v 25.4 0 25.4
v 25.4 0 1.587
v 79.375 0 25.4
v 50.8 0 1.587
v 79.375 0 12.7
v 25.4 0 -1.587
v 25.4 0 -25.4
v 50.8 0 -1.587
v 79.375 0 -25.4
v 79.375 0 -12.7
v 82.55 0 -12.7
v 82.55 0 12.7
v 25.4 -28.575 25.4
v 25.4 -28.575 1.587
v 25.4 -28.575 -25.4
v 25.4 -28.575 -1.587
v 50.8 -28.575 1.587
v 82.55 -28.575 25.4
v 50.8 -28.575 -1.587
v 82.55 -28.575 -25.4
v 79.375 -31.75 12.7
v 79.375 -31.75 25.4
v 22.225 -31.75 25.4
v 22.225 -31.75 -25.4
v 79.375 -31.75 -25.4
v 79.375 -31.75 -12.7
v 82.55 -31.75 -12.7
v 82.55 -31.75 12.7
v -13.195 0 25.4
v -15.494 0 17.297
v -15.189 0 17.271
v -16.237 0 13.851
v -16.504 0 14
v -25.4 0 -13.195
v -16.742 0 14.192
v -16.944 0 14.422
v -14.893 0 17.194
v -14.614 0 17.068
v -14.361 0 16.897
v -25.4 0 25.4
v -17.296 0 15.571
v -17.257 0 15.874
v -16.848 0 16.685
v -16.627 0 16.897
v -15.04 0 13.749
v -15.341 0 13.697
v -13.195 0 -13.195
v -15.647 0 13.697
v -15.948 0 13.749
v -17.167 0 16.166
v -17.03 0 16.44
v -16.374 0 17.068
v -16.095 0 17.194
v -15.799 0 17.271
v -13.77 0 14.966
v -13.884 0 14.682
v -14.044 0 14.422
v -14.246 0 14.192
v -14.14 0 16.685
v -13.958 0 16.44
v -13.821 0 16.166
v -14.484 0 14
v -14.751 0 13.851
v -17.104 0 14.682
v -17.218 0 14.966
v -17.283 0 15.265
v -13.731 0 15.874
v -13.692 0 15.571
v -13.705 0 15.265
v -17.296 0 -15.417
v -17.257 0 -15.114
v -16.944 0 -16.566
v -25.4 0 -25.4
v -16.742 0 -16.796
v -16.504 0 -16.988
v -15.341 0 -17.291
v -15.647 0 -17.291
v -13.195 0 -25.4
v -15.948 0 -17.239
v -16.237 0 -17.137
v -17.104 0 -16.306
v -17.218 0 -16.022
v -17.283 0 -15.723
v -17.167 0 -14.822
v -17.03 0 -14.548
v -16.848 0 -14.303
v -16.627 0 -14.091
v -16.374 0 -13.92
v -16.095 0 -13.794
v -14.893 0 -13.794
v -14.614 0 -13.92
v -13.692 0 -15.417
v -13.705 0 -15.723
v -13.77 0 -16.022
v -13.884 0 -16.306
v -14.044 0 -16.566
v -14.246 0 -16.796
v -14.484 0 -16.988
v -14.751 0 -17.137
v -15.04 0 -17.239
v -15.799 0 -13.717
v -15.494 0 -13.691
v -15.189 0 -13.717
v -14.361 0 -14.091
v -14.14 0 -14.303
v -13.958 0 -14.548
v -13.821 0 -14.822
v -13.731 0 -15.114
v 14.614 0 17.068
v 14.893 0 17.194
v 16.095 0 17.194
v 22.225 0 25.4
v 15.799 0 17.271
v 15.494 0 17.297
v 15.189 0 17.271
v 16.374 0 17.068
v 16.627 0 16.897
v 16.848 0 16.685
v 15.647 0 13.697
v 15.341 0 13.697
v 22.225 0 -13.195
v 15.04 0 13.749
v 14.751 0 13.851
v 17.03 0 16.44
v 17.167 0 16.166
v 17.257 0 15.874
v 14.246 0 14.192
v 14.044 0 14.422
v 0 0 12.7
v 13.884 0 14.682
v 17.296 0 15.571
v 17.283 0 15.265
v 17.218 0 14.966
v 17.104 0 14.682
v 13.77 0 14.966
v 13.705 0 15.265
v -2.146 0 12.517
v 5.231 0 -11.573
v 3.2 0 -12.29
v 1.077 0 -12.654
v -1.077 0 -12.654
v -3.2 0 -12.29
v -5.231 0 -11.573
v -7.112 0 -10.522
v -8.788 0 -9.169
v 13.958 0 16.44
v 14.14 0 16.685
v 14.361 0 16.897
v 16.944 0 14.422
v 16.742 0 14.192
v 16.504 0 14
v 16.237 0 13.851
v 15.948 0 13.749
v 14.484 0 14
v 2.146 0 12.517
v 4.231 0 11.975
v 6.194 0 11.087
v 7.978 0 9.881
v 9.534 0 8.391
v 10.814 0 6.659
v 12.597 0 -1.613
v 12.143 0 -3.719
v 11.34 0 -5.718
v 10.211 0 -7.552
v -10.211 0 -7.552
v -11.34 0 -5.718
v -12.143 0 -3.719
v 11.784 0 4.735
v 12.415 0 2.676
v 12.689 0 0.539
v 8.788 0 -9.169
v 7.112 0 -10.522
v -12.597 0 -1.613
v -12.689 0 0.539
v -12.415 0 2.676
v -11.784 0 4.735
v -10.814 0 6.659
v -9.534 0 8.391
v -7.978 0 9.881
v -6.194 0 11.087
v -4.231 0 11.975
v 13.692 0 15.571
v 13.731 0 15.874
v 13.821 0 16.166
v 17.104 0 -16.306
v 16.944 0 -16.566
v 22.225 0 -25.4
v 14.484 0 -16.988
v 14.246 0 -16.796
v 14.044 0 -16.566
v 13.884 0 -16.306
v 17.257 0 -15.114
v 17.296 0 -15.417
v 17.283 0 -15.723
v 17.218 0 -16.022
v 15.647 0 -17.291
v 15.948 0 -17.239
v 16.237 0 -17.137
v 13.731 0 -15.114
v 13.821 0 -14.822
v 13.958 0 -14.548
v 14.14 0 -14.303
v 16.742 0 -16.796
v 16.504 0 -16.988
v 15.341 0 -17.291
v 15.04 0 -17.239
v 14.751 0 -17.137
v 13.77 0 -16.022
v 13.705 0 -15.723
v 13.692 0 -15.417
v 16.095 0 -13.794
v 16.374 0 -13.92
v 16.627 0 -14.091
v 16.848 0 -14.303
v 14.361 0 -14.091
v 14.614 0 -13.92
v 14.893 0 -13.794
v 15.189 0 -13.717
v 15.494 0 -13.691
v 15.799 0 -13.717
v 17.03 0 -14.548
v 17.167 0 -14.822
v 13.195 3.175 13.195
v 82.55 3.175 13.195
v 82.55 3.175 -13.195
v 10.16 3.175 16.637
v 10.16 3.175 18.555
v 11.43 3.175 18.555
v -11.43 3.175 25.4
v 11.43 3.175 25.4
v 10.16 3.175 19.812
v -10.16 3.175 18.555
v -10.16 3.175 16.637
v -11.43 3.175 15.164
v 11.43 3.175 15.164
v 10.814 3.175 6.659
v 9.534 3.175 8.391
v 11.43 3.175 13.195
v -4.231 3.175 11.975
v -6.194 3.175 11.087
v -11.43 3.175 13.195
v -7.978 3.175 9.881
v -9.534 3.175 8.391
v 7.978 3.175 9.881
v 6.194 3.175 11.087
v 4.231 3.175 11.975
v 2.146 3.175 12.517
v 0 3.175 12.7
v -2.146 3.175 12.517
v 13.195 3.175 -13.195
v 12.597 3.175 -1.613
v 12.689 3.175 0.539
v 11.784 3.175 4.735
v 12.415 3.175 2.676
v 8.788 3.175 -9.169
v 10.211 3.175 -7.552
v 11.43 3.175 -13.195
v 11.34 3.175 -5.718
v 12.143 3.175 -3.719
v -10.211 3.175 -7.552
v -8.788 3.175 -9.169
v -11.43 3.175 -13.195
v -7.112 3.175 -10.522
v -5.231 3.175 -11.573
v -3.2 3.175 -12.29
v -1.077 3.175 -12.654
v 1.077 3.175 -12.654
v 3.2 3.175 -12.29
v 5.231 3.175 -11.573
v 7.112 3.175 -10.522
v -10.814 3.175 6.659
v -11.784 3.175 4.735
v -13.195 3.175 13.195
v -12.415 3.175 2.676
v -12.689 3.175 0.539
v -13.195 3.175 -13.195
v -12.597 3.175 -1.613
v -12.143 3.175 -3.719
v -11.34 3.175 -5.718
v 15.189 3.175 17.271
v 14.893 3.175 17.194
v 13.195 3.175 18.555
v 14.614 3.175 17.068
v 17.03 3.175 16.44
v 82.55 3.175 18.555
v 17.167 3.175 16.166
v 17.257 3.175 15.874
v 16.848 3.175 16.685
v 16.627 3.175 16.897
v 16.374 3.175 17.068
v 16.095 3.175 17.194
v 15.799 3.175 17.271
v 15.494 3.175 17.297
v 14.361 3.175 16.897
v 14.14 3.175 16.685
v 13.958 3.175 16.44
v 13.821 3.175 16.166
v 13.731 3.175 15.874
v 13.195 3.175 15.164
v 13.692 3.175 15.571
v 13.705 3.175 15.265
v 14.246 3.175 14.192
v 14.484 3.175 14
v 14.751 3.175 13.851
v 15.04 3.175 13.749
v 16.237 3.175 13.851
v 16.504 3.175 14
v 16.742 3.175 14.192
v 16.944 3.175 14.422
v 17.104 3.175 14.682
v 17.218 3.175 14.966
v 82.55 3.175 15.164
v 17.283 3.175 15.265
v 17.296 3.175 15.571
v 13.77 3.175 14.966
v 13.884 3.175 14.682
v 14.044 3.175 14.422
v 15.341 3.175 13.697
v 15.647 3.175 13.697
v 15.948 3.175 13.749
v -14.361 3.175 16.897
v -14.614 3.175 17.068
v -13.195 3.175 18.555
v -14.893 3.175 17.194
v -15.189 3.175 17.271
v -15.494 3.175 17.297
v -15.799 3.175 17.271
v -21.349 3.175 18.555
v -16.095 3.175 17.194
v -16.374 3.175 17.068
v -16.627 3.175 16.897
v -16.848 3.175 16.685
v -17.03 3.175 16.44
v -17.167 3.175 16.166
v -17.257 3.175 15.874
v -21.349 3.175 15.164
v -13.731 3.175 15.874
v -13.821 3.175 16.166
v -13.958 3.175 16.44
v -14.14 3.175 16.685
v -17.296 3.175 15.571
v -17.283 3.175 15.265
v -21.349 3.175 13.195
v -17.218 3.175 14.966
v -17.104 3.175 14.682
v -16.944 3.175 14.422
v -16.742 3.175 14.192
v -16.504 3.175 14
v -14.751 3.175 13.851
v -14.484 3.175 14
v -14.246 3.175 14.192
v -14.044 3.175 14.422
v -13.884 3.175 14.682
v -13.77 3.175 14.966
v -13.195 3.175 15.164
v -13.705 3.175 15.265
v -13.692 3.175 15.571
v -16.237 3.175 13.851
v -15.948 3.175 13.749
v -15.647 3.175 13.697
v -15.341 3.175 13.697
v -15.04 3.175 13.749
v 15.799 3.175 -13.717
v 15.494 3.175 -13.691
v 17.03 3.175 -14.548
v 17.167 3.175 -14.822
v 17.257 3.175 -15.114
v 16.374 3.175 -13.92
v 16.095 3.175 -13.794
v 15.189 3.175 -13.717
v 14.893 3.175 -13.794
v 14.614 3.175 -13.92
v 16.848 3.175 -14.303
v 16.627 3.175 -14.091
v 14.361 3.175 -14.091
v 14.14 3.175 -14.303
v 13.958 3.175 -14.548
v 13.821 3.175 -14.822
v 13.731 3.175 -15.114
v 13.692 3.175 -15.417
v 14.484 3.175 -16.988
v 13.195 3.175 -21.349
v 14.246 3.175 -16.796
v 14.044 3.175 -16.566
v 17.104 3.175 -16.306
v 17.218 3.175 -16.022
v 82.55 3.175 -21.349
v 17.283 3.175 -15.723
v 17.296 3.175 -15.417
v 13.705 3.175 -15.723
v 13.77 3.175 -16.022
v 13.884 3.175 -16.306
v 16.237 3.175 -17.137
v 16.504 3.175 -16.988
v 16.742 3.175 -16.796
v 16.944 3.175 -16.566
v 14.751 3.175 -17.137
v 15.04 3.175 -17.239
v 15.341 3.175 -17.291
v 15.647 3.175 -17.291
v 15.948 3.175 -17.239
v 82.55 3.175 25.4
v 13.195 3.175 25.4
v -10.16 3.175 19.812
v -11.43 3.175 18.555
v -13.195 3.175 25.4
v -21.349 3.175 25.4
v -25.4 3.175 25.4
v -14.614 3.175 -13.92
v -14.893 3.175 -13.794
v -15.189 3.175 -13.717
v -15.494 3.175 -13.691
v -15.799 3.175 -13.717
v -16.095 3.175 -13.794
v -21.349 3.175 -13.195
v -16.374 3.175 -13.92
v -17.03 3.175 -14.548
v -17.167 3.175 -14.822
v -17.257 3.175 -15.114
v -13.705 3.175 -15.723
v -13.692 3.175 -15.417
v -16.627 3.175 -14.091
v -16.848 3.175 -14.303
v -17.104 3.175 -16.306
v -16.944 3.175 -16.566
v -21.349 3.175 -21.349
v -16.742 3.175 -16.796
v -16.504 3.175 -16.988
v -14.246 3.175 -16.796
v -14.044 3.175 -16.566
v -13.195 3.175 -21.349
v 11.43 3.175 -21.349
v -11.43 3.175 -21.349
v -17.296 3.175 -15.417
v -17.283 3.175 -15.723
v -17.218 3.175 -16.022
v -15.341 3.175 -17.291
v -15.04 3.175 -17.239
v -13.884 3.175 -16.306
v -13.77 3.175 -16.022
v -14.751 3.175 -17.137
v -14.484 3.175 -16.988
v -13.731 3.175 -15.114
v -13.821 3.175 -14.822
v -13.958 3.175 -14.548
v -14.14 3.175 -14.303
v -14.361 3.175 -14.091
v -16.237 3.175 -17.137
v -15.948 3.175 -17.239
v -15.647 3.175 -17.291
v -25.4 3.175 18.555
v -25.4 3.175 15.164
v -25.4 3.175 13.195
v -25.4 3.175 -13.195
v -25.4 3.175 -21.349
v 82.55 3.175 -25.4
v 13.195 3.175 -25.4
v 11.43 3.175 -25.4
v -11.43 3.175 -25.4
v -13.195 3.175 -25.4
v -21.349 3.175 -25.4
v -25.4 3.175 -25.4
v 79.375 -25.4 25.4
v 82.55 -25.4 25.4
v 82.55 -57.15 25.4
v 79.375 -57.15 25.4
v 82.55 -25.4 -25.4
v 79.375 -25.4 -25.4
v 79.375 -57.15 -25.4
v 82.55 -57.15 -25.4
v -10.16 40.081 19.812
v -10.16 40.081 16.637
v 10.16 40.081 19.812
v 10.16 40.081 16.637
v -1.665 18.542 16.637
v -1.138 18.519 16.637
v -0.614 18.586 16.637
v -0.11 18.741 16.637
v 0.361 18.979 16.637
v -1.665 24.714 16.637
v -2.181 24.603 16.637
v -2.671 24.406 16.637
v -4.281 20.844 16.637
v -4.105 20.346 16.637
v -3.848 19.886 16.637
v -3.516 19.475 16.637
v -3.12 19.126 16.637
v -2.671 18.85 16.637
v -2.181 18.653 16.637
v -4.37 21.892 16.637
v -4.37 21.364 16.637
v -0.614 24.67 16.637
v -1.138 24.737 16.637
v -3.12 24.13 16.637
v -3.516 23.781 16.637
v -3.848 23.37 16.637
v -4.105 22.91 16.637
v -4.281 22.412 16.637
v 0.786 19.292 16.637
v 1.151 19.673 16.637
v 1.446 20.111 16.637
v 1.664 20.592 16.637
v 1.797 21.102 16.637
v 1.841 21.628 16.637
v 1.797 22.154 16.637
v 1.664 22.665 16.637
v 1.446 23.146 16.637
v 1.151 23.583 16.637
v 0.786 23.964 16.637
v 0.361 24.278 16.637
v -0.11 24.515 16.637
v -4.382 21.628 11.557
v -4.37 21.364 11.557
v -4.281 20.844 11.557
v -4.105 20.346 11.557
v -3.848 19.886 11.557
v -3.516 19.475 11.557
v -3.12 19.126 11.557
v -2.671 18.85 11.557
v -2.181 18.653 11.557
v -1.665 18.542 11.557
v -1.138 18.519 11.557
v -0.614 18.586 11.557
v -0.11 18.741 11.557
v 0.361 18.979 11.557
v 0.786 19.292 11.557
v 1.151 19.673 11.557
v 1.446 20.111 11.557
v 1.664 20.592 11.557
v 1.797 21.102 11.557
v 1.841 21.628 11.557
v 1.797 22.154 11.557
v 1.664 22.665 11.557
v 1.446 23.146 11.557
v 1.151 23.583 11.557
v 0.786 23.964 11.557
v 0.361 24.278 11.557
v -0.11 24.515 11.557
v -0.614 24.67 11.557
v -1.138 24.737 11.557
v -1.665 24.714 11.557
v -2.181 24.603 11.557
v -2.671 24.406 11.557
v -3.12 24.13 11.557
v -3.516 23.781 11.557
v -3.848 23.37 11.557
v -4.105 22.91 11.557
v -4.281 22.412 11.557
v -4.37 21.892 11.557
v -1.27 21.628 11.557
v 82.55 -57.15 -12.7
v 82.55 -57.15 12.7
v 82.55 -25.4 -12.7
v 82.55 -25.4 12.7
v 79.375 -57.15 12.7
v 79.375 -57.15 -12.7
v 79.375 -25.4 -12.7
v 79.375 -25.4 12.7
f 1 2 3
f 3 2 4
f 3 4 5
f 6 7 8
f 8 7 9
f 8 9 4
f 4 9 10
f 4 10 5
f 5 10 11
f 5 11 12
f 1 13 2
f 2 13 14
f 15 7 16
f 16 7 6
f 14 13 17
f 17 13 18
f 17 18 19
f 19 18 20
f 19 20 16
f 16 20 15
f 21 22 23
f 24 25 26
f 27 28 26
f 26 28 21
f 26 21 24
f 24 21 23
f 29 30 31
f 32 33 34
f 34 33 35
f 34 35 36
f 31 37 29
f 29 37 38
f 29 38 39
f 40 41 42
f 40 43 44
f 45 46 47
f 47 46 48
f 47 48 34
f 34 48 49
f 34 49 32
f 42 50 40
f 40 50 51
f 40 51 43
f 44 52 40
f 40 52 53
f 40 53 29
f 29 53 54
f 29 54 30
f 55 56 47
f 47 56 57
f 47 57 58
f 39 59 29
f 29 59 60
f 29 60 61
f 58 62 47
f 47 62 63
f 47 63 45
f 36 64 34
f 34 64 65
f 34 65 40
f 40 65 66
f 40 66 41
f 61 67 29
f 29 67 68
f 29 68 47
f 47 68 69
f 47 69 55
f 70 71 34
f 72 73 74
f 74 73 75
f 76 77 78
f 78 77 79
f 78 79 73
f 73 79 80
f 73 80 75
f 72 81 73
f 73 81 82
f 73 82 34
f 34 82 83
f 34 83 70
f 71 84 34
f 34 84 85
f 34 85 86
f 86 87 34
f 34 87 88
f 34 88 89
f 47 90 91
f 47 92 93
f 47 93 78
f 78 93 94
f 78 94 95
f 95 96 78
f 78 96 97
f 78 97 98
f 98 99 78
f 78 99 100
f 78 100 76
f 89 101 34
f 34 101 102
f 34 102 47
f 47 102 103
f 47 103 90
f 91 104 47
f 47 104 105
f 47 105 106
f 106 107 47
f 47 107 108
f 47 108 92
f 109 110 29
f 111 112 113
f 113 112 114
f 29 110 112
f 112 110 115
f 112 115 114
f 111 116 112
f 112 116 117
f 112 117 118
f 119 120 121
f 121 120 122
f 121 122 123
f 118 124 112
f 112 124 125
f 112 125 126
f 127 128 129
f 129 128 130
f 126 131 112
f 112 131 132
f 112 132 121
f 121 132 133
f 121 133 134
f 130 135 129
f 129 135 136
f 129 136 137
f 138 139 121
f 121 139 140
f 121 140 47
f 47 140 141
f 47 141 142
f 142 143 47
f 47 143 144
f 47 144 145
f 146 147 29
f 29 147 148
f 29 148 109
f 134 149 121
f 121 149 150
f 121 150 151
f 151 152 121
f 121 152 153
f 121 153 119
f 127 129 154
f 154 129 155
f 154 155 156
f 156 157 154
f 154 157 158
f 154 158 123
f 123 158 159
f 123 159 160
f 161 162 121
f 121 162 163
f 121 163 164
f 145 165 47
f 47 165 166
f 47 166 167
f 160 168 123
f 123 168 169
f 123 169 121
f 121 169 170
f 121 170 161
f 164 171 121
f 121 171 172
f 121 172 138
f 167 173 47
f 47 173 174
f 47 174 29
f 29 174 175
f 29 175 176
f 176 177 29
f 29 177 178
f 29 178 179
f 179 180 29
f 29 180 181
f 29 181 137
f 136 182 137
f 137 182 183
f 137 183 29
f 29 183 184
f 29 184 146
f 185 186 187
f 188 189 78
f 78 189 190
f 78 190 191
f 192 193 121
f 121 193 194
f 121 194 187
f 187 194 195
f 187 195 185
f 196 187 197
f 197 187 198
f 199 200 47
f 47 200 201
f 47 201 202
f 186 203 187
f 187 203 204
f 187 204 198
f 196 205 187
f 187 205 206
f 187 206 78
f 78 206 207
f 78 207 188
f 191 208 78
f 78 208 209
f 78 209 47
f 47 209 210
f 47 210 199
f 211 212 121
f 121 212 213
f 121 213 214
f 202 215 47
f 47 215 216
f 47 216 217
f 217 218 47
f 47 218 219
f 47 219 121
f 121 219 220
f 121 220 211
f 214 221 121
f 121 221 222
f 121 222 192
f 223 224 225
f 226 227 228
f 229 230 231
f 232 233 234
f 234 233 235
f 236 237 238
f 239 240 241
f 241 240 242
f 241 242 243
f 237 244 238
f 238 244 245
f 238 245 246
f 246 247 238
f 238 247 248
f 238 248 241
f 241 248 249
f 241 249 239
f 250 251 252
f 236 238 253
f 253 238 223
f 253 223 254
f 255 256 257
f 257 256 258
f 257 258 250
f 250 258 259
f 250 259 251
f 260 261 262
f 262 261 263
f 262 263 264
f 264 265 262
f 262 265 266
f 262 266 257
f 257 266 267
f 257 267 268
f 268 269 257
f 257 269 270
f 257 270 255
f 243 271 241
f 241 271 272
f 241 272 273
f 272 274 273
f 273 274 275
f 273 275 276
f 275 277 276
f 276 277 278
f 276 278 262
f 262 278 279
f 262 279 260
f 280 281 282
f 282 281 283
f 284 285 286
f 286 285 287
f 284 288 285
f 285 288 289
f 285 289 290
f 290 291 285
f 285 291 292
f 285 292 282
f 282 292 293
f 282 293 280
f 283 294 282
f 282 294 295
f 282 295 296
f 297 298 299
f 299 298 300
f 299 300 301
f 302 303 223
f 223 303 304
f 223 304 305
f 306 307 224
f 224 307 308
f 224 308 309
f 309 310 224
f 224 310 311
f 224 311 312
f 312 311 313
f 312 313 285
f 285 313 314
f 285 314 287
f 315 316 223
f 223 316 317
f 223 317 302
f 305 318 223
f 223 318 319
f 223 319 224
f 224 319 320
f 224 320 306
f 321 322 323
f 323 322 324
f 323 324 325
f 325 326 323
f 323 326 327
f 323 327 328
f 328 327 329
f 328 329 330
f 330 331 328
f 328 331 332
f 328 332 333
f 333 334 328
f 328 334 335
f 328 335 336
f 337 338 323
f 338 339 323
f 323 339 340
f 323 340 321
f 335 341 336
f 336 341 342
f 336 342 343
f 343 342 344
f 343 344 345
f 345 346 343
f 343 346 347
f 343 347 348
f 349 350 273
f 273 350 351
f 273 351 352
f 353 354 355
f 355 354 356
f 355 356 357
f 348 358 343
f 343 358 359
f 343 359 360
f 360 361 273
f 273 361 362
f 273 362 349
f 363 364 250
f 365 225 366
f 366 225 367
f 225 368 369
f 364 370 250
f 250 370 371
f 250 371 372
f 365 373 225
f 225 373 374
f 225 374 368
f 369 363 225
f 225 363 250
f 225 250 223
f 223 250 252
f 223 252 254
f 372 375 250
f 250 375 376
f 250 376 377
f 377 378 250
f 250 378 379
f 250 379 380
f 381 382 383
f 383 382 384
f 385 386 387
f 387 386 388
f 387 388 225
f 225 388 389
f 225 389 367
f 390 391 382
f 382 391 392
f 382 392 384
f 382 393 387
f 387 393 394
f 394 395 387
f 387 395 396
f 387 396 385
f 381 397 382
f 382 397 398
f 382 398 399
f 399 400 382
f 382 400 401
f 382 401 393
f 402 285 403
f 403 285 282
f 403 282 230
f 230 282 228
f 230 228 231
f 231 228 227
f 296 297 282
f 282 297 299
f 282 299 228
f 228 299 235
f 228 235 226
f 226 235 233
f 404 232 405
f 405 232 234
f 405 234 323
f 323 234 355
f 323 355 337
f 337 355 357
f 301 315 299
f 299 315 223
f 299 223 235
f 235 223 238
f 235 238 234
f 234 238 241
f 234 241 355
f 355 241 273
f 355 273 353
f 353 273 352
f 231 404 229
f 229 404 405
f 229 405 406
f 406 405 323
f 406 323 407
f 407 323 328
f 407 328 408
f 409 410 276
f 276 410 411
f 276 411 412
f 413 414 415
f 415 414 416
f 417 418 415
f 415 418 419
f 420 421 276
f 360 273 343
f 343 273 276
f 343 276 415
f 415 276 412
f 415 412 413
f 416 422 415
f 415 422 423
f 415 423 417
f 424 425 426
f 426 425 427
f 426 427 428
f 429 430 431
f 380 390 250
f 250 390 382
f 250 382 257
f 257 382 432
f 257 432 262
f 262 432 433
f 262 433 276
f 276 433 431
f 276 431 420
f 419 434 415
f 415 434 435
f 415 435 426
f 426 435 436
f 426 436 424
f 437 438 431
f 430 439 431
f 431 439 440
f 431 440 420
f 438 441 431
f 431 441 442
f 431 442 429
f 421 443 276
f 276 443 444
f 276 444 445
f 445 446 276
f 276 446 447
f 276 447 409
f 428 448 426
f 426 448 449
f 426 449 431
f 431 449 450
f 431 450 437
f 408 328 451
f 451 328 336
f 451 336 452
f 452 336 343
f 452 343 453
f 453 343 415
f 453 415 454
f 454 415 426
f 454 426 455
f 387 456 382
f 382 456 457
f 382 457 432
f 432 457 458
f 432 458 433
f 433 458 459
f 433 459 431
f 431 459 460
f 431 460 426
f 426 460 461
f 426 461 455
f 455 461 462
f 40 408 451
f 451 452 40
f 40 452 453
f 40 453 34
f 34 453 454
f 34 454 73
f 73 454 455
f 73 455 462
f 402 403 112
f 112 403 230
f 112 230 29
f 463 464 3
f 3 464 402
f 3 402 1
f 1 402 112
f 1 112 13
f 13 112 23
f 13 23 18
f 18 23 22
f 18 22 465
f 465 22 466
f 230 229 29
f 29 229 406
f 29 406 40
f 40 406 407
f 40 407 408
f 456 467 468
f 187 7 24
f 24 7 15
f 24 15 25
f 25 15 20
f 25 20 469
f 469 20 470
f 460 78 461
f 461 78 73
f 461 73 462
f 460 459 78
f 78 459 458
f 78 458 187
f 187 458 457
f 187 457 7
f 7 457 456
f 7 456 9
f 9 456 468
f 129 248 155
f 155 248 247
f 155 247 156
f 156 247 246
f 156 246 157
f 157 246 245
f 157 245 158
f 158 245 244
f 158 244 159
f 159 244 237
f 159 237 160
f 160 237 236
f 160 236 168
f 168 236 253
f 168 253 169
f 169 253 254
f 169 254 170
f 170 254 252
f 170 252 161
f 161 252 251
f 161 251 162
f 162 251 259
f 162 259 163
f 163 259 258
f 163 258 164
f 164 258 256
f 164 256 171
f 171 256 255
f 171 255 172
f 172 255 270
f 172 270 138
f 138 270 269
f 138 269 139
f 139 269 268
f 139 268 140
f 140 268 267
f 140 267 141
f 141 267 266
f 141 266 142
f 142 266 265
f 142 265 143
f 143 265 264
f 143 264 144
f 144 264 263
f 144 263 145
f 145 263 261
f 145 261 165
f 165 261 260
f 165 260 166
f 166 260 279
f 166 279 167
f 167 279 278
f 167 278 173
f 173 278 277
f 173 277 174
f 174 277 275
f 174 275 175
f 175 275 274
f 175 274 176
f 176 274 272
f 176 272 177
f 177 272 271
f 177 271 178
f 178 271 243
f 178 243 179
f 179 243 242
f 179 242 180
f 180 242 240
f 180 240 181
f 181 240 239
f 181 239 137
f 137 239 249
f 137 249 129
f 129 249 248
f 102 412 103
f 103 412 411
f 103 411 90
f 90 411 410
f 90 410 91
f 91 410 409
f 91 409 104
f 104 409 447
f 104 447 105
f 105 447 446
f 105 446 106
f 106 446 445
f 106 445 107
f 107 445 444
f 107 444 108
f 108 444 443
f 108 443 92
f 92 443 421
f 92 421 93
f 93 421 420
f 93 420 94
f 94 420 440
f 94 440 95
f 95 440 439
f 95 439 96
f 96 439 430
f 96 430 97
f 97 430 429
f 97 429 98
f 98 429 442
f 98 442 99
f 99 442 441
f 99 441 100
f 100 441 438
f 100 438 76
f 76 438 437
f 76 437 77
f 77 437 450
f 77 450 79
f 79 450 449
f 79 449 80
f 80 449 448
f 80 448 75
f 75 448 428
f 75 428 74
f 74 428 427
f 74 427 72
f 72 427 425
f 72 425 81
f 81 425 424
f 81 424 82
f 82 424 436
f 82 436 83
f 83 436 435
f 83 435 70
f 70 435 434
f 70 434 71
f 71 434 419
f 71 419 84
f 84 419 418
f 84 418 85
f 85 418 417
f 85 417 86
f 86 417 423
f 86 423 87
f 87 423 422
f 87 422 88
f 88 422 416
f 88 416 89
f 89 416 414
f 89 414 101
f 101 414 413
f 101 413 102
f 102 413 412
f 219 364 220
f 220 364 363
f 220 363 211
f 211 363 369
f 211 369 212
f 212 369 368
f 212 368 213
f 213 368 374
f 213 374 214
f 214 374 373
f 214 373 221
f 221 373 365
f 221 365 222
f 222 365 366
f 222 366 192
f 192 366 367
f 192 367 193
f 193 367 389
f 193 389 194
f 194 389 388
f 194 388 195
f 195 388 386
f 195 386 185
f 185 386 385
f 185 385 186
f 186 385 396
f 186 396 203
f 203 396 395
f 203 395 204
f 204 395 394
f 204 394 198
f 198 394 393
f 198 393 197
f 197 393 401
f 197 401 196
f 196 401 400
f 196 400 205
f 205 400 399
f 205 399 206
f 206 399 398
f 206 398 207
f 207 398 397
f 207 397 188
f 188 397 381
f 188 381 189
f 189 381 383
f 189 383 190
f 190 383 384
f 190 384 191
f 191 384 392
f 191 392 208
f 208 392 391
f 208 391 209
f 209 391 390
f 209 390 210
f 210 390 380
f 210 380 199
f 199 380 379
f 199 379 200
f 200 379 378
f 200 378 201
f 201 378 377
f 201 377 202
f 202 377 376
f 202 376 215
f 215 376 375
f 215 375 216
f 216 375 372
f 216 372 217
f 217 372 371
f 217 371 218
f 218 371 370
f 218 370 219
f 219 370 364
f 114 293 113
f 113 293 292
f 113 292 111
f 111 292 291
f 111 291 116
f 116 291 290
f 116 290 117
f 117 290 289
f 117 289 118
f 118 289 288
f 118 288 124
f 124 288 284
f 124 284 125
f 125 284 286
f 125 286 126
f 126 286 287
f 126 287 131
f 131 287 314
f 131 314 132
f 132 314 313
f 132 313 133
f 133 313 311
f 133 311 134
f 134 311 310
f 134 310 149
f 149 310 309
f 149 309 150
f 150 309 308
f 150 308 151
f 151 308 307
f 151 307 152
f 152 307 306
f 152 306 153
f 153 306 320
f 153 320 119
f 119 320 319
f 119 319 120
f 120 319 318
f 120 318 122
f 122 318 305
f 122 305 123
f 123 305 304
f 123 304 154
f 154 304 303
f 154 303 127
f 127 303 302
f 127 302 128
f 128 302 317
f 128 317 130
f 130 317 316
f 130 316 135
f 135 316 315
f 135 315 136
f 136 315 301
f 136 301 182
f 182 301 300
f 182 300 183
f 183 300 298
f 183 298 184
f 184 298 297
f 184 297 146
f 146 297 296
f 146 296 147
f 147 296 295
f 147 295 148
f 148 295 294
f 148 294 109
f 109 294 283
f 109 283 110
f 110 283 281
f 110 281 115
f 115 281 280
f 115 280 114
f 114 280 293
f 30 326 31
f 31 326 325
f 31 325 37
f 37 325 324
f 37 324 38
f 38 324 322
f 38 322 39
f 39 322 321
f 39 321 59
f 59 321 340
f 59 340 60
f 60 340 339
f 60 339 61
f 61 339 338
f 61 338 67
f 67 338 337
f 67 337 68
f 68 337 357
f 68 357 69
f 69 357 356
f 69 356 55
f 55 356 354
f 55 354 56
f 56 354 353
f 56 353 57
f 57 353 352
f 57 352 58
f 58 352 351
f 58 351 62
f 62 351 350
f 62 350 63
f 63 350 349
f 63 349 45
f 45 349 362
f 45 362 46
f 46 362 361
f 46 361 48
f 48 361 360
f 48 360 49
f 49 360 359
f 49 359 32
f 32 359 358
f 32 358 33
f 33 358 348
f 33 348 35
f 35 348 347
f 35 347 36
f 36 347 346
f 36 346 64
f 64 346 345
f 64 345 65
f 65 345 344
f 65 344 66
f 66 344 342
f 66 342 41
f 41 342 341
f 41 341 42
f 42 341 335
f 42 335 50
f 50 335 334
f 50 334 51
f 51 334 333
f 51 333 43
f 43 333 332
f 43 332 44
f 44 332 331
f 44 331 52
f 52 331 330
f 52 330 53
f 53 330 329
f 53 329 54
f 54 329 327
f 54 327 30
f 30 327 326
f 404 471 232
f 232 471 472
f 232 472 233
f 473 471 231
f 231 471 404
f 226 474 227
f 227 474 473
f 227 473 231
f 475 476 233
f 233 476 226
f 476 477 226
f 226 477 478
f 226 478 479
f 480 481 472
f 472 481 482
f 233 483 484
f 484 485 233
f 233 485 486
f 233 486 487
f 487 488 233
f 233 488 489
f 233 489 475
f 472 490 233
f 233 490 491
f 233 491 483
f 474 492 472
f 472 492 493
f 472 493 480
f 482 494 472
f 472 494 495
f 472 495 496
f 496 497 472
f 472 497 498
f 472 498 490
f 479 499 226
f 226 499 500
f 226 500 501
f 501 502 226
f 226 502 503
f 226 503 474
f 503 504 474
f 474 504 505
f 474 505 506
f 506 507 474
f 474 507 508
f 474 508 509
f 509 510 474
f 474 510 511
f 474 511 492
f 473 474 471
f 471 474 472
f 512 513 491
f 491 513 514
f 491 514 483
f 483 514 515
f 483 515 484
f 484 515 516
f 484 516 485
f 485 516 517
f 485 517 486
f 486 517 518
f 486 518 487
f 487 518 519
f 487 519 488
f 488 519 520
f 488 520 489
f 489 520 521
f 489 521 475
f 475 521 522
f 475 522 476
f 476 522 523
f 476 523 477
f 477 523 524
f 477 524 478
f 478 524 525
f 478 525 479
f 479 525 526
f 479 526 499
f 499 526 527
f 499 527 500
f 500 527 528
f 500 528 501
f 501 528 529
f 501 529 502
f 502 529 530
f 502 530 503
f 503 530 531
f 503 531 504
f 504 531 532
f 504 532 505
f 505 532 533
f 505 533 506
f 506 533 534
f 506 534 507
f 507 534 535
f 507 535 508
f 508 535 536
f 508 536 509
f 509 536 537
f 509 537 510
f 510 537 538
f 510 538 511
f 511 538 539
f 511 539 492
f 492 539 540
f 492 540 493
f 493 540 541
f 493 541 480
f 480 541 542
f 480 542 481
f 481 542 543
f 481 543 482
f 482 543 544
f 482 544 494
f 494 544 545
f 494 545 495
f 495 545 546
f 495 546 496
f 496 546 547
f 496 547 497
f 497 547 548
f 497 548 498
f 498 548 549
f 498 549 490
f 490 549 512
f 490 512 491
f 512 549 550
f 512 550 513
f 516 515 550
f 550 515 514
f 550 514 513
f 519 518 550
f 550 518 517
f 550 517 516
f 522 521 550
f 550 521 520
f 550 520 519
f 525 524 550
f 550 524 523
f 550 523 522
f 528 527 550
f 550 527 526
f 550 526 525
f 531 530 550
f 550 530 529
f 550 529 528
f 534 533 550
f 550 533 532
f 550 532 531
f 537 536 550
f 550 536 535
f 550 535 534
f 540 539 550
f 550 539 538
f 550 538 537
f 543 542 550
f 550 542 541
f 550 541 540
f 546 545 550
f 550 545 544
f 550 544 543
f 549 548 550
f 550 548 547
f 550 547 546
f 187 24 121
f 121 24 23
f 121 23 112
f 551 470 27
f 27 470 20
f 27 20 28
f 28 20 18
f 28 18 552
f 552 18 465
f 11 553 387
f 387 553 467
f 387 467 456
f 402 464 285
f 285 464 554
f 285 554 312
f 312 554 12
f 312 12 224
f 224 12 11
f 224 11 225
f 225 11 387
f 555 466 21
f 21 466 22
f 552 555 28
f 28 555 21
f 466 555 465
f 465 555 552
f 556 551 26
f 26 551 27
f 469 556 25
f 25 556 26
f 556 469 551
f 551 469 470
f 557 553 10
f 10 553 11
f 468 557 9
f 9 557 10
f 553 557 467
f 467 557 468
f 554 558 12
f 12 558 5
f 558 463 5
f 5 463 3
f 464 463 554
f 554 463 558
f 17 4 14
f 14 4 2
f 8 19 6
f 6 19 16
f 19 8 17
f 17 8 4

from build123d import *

# Parameters (mm, degrees)
SKETCH1_W            = 50.8
SKETCH1_H            = 50.8
BOSS_EXTRUDE1_DEPTH  = 3.175
SKETCH2_R            = 12.7
SKETCH2_R_2          = 1.8034
CUT_EXTRUDE1_DEPTH   = 37.061067996
SKETCH6_W            = 20.32
SKETCH6_H            = 3.175
BOSS_EXTRUDE4_DEPTH  = 36.9062
SKETCH7_R            = 3.1115
BOSS_EXTRUDE5_DEPTH  = 5.08
SKETCH11_W           = 3.175
SKETCH11_H           = 50.8
BOSS_EXTRUDE8_DEPTH  = 31.75
SKETCH13_W           = 50.8
SKETCH13_H           = 3.175
BOSS_EXTRUDE10_DEPTH = 57.15
SKETCH15_W           = 3.175
SKETCH15_H           = 12.7
BOSS_EXTRUDE12_DEPTH = 25.4
SKETCH16_W           = 3.175
SKETCH16_H           = 12.7
BOSS_EXTRUDE13_DEPTH = 25.4
SKETCH17_W           = 3.175
SKETCH17_H           = 28.575
BOSS_EXTRUDE14_DEPTH = 25.4


with BuildPart() as part:
    # Sketch1 → Boss-Extrude1 (new body)
    with BuildSketch(Plane(origin=(0, 0, 0), x_dir=(1, 0, 0), z_dir=(0, 1, 0))):
        Rectangle(SKETCH1_W, SKETCH1_H)
    extrude(amount=BOSS_EXTRUDE1_DEPTH)

    # Sketch2 → Cut-Extrude1 (cut, through all)
    with BuildSketch(Plane(origin=(0, 3.175, 0), x_dir=(1, 0, 0), z_dir=(0, 1, 0))):
        with Locations(Location((0, 0, 0), (0, 0, 270))):
            Circle(SKETCH2_R)
        with Locations(Location((-15.494, 15.494, 0), (0, 0, 270))):
            Circle(SKETCH2_R_2)
        with Locations(Location((15.494, 15.494, 0), (0, 0, 270))):
            Circle(SKETCH2_R_2)
        with Locations(Location((15.494, -15.494, 0), (0, 0, 270))):
            Circle(SKETCH2_R_2)
        with Locations(Location((-15.494, -15.494, 0), (0, 0, 270))):
            Circle(SKETCH2_R_2)
    extrude(amount=-CUT_EXTRUDE1_DEPTH, mode=Mode.SUBTRACT)

    # Sketch6 → Boss-Extrude4 (add)
    with BuildSketch(Plane(origin=(0, 3.175, 0), x_dir=(1, 0, 0), z_dir=(0, 1, 0))):
        with Locations((0, -18.2245)):
            Rectangle(SKETCH6_W, SKETCH6_H)
    extrude(amount=BOSS_EXTRUDE4_DEPTH)

    # Sketch7 → Boss-Extrude5 (add)
    with BuildSketch(Plane(origin=(0, 0, 16.637), x_dir=(-1, 0, 0), z_dir=(0, 0, -1))):
        with Locations(Location((1.27, 21.6281, 0), (0, 0, 180))):
            Circle(SKETCH7_R)
    extrude(amount=BOSS_EXTRUDE5_DEPTH)

    # Sketch11 → Boss-Extrude8 (add)
    with BuildSketch(Plane.XZ):
        with Locations((23.8125, 0)):
            Rectangle(SKETCH11_W, SKETCH11_H)
    extrude(amount=BOSS_EXTRUDE8_DEPTH)

    # Sketch13 → Boss-Extrude10 (add)
    with BuildSketch(Plane(origin=(25.4, 0, 0), x_dir=(0, 0, -1), z_dir=(1, 0, 0))):
        with Locations((0, -30.1625)):
            Rectangle(SKETCH13_W, SKETCH13_H)
        with Locations((0, 1.5875)):
            Rectangle(SKETCH13_W, SKETCH13_H)
    extrude(amount=BOSS_EXTRUDE10_DEPTH)

    # Sketch15 → Boss-Extrude12 (add)
    with BuildSketch(Plane.XZ.offset(31.75)):
        with Locations((80.9625, 19.05)):
            Rectangle(SKETCH15_W, SKETCH15_H)
        with Locations((80.9625, -19.05)):
            Rectangle(SKETCH15_W, SKETCH15_H)
    extrude(amount=BOSS_EXTRUDE12_DEPTH)

    # Sketch16 → Boss-Extrude13 (add)
    with BuildSketch(Plane.XZ):
        with Locations((80.9625, -19.05)):
            Rectangle(SKETCH16_W, SKETCH16_H)
        with Locations((80.9625, 19.05)):
            Rectangle(SKETCH16_W, SKETCH16_H)
    extrude(amount=BOSS_EXTRUDE13_DEPTH)

    # Sketch17 → Boss-Extrude14 (add)
    with BuildSketch(Plane(origin=(25.4, 0, 0), x_dir=(0, 0, -1), z_dir=(1, 0, 0))):
        with Locations((0, -14.2875)):
            Rectangle(SKETCH17_W, SKETCH17_H)
    extrude(amount=BOSS_EXTRUDE14_DEPTH)


solid = part.part
